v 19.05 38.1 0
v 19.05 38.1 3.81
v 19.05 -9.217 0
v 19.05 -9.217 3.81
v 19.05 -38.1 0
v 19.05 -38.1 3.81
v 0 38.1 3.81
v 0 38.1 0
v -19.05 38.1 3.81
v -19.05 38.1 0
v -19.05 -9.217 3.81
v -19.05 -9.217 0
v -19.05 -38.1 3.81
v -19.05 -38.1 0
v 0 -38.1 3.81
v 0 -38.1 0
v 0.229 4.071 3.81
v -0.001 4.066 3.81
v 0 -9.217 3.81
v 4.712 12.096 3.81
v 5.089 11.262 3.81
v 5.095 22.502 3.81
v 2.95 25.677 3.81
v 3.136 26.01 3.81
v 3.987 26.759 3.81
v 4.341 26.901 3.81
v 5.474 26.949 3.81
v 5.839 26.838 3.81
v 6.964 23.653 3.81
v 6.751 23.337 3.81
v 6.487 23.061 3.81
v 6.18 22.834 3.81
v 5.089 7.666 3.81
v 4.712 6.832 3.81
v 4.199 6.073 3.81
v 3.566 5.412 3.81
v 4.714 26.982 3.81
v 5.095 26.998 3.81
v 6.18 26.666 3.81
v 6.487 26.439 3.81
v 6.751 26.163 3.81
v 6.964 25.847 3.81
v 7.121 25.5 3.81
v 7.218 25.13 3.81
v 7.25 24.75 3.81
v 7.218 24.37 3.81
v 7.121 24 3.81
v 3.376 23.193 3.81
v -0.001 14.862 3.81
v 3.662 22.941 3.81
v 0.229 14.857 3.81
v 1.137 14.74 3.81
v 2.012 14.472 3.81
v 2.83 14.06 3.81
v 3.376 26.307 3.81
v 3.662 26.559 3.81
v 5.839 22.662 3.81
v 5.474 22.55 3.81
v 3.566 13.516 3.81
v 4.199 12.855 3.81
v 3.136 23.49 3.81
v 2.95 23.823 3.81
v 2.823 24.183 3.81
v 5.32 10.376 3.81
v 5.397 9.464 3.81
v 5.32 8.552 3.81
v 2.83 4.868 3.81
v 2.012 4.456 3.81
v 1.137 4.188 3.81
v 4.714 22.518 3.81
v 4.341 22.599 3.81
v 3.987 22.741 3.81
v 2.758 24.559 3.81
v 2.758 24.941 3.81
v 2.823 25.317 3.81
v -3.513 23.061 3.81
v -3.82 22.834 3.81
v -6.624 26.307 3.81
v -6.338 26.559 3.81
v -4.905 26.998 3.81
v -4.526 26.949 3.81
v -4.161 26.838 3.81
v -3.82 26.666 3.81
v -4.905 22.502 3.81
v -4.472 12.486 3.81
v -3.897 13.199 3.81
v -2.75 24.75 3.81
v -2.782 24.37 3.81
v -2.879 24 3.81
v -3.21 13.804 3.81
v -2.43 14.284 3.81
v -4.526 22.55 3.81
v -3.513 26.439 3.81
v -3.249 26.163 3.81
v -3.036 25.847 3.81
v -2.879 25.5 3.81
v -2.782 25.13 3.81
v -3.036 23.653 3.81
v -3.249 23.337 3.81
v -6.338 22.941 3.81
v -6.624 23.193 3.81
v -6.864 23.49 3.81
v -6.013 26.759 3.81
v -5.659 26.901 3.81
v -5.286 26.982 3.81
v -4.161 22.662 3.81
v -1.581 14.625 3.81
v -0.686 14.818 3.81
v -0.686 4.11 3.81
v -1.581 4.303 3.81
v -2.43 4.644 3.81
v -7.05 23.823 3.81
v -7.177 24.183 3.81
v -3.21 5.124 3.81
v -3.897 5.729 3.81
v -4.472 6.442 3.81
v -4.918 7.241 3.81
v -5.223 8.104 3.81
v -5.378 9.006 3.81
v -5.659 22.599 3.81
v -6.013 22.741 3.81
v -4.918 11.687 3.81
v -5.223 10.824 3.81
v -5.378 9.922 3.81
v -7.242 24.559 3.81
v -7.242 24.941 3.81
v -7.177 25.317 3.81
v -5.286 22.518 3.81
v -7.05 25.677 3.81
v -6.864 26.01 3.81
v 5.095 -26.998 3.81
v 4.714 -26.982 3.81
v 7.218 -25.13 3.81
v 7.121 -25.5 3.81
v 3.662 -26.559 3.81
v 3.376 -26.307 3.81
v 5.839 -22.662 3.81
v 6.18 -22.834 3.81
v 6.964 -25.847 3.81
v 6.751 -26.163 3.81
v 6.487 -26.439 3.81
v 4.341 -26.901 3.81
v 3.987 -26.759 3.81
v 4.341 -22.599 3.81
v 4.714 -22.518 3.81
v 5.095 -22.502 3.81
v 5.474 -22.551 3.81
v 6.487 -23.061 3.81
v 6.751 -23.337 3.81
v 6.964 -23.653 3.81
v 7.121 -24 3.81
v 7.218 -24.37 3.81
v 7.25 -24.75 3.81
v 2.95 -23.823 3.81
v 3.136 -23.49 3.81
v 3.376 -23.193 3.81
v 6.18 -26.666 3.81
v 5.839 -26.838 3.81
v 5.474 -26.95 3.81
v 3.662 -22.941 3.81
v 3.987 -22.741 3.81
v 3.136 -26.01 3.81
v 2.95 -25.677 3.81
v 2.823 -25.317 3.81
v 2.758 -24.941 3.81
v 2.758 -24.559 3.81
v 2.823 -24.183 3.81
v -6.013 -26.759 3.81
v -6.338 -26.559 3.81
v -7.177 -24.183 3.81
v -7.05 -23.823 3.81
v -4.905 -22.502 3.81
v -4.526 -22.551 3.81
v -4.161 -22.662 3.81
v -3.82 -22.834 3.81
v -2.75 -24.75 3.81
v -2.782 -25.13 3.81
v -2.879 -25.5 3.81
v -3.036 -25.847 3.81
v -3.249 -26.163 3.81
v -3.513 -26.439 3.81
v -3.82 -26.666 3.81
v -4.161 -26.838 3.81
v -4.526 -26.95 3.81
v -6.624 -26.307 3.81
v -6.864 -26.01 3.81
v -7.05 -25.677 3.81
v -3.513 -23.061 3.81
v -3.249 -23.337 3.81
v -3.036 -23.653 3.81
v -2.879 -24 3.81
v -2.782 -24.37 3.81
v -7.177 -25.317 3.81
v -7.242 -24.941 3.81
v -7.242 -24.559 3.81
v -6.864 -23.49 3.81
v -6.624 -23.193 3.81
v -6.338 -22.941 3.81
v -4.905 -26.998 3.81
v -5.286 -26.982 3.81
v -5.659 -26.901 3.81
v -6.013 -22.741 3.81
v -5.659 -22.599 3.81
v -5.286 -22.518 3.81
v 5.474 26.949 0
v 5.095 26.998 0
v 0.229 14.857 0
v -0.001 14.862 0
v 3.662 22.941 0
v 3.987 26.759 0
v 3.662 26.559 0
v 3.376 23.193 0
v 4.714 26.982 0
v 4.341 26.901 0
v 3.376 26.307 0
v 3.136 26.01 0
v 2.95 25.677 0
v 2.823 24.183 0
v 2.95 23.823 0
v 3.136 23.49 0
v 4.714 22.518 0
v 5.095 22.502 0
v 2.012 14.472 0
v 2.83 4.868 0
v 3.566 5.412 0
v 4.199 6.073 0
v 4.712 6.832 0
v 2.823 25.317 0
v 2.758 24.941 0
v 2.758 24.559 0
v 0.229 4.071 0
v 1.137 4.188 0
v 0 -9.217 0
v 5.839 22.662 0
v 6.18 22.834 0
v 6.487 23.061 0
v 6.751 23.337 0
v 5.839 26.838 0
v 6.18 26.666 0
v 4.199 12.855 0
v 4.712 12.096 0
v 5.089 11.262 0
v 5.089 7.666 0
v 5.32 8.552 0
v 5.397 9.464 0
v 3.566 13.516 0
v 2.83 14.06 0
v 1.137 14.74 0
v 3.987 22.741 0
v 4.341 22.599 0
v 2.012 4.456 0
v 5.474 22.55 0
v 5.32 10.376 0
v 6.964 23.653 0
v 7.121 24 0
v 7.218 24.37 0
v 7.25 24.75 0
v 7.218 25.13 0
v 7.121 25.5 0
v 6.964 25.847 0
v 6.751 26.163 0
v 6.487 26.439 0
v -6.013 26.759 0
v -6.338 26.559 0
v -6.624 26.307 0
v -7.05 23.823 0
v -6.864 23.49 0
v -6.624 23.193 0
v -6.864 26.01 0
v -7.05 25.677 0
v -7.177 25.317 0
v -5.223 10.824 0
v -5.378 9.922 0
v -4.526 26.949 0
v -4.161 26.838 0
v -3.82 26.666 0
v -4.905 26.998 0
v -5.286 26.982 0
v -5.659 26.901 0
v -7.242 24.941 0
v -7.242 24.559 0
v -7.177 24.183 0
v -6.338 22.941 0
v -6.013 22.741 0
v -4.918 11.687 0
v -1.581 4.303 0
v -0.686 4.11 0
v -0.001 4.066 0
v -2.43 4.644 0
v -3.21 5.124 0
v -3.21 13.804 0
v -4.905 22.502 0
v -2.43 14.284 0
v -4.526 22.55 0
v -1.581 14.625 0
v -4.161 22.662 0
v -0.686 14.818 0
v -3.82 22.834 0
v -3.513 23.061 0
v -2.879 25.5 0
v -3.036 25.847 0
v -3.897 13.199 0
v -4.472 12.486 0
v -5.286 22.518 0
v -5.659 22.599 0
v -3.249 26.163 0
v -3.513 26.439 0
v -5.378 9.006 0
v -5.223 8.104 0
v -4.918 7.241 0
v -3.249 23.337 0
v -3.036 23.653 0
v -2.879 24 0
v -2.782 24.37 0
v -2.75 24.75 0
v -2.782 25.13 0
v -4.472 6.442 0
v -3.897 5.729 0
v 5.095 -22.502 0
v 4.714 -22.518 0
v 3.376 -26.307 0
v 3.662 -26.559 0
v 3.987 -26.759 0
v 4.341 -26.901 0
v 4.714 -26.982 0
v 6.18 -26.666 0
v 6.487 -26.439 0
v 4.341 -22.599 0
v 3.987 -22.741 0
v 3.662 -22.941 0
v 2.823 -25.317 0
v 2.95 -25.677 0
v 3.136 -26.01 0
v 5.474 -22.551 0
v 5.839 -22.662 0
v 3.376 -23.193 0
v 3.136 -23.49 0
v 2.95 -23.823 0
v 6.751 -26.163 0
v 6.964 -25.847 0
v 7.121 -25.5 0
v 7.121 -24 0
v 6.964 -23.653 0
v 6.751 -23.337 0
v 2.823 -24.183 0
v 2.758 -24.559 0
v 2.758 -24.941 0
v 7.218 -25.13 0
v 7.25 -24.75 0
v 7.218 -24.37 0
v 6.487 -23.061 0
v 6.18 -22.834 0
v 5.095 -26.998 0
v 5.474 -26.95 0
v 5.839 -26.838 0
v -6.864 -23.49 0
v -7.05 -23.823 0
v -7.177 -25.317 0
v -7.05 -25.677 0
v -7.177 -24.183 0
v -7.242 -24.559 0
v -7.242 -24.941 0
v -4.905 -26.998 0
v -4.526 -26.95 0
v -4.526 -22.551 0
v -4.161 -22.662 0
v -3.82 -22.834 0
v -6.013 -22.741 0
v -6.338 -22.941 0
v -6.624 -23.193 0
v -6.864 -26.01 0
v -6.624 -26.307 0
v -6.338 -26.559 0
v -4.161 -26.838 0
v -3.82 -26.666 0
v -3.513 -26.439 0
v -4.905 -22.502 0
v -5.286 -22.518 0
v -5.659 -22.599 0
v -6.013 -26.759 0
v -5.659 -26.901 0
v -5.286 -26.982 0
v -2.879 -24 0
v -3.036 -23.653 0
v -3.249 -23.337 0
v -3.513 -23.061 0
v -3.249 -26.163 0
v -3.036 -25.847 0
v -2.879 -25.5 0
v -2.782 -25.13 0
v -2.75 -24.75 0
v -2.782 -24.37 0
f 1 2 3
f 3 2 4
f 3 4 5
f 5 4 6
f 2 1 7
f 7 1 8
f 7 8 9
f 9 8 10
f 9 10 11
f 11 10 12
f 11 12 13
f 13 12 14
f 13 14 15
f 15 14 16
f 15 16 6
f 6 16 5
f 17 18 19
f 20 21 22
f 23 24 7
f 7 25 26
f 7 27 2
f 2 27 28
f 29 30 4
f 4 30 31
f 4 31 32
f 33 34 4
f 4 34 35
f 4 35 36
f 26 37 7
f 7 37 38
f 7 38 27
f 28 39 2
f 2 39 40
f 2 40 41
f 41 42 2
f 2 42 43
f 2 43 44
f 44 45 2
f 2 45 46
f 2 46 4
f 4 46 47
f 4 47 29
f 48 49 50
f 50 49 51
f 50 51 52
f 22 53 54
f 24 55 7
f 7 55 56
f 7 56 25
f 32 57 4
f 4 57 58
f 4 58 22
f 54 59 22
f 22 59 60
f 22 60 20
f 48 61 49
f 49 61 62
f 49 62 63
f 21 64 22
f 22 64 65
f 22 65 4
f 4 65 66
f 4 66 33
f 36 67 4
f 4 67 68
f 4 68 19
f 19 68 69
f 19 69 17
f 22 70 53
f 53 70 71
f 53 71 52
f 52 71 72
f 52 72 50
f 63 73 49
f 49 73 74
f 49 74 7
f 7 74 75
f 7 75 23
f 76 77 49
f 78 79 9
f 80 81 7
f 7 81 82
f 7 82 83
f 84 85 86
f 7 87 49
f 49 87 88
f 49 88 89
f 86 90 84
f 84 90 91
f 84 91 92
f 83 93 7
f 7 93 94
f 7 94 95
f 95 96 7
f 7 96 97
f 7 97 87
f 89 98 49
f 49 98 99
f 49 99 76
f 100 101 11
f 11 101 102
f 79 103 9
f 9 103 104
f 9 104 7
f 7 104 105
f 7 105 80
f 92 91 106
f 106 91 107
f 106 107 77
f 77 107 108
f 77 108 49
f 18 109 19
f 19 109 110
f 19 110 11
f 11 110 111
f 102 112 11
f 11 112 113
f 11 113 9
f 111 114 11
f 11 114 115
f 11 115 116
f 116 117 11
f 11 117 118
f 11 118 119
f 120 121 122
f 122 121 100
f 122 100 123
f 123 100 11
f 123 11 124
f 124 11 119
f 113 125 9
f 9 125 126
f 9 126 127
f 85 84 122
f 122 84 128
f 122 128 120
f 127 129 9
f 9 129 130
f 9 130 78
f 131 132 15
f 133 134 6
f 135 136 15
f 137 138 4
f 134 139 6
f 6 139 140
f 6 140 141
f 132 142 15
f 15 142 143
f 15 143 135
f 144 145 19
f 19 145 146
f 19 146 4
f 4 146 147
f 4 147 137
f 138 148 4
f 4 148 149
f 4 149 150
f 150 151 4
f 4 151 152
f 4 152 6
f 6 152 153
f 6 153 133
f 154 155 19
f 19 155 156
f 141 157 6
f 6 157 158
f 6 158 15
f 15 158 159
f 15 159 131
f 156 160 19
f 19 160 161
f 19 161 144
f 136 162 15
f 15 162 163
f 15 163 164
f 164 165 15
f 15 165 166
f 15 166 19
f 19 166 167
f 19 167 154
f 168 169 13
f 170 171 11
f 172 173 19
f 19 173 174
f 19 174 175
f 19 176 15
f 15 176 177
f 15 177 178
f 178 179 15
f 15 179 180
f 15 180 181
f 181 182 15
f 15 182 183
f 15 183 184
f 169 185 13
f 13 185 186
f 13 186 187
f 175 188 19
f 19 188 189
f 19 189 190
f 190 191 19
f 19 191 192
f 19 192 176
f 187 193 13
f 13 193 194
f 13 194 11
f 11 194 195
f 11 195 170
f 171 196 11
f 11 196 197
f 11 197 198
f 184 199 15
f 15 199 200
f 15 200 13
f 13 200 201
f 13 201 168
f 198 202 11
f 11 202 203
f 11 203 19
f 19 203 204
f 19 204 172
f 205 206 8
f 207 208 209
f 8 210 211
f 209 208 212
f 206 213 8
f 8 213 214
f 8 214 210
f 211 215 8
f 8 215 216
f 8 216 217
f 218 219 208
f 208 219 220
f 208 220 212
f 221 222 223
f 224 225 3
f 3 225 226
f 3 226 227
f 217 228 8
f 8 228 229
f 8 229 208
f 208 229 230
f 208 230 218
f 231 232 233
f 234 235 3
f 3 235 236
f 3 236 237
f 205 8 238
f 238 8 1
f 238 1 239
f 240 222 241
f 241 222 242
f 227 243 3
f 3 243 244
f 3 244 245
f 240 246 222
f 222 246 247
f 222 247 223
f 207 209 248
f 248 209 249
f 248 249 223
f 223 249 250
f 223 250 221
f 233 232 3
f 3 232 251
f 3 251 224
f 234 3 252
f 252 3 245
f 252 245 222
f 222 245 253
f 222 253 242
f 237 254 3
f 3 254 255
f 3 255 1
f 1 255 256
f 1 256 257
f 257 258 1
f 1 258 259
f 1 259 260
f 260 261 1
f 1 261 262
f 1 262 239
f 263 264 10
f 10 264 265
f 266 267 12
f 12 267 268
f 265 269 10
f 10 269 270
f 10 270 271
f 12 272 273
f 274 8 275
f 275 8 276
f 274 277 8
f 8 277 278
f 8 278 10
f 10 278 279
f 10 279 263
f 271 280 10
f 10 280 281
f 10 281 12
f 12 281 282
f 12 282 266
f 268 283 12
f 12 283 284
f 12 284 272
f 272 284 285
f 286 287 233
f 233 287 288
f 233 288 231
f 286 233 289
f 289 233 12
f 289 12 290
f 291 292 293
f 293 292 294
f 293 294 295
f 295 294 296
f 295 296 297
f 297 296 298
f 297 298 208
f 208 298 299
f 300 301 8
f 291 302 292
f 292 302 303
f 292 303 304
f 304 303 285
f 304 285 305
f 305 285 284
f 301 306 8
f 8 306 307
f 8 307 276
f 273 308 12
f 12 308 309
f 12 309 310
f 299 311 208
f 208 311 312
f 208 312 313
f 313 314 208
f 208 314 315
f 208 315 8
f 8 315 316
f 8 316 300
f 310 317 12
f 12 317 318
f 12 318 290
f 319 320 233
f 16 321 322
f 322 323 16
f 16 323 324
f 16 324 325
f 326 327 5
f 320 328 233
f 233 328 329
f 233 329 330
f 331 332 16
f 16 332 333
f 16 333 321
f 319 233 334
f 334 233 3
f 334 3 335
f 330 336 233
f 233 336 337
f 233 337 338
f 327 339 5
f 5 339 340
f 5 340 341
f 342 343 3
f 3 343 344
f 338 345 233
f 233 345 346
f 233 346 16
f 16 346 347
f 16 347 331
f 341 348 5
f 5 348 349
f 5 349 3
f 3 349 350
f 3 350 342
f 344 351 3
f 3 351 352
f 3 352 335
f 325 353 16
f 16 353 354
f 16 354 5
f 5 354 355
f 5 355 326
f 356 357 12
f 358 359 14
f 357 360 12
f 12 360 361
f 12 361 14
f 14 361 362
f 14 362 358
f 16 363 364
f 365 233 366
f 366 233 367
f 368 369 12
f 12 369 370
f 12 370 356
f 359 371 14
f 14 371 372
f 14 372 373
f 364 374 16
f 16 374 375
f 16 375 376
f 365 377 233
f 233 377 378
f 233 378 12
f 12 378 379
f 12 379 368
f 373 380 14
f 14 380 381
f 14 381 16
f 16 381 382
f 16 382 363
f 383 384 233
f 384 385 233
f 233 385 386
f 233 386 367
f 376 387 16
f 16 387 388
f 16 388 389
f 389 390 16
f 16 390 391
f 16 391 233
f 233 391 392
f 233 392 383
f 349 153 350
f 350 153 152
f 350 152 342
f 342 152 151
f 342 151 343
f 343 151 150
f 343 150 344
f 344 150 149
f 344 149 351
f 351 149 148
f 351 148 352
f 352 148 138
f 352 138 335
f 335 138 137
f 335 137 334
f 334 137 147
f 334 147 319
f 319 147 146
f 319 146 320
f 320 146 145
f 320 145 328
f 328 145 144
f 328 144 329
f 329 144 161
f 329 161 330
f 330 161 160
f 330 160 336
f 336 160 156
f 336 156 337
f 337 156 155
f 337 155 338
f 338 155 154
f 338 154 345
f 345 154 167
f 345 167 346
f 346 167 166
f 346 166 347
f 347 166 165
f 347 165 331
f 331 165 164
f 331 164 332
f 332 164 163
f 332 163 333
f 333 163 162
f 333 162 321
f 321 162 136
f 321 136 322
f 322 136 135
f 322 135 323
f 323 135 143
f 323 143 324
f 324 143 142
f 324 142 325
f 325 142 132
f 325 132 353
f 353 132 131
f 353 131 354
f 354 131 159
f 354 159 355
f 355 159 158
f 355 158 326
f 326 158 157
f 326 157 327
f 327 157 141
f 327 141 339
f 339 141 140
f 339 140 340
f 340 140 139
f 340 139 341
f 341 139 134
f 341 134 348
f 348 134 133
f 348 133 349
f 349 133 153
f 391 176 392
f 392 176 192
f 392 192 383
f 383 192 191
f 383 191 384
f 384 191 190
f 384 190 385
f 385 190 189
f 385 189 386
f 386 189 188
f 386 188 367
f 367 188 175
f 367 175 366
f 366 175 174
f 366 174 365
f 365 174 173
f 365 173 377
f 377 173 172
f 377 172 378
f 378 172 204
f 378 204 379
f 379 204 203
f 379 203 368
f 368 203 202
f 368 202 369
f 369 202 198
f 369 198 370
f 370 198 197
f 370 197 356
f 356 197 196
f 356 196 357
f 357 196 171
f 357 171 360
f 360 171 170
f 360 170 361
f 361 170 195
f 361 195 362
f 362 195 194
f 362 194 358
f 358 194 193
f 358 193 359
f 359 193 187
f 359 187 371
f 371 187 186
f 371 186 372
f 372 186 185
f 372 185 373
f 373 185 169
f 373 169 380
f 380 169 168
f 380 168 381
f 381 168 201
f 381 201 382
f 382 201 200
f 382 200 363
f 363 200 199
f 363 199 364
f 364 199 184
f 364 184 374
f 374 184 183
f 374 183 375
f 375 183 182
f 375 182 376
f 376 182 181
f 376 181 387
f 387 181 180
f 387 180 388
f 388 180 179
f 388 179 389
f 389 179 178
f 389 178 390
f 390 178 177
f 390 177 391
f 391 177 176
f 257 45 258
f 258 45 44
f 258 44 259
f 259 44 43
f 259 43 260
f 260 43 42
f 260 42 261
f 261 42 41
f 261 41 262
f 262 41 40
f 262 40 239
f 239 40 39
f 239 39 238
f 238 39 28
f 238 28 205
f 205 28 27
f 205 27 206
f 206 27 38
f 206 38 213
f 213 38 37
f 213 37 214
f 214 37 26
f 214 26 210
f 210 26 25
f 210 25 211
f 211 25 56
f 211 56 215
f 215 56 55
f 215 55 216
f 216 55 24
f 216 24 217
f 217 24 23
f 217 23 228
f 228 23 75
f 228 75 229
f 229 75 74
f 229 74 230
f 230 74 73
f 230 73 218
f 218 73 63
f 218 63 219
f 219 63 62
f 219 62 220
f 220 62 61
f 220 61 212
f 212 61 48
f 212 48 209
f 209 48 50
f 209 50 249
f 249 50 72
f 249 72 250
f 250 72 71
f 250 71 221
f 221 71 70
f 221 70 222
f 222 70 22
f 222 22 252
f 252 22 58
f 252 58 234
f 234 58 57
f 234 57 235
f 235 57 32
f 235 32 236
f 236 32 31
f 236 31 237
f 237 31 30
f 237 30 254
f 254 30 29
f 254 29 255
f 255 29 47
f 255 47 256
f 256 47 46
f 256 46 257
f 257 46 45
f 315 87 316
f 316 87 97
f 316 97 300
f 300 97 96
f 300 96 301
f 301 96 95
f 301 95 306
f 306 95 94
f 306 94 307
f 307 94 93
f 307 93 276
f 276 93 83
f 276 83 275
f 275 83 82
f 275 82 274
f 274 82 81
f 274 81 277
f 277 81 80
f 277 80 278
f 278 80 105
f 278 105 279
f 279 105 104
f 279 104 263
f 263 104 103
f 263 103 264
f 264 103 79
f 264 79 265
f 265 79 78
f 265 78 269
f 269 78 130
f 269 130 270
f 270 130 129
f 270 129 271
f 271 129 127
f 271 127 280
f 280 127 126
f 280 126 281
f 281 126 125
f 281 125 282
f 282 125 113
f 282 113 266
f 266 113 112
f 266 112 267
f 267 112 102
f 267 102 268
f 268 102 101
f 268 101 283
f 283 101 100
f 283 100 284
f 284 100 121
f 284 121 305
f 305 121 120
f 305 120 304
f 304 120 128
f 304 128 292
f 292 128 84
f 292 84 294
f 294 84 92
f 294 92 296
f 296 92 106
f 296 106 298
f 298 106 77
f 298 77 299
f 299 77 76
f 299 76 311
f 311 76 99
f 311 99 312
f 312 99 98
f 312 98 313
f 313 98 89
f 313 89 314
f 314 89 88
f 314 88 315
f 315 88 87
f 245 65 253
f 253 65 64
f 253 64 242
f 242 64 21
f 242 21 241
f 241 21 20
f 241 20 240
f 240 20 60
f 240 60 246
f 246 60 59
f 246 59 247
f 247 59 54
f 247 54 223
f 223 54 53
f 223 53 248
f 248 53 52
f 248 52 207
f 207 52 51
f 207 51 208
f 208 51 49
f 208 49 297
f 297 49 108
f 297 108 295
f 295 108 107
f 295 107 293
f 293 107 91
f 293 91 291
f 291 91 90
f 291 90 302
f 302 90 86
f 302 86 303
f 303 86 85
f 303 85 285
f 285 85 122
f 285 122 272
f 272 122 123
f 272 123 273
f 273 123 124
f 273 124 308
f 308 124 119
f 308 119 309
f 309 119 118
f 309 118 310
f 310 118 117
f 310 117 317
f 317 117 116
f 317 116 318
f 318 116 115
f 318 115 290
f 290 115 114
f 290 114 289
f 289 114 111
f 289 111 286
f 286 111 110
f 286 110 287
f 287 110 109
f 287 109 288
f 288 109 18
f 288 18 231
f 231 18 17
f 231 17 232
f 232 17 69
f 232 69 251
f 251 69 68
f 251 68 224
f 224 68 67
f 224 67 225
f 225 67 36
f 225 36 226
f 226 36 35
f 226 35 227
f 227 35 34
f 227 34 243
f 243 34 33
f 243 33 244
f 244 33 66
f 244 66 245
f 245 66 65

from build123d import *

# Parameters (mm, degrees)
SKETCH1_W            = 38.1
SKETCH1_H            = 76.2
BOSS_EXTRUDE1_DEPTH  = 3.81
M4_CLEARANCE_HOLE1_D = 4.5
CUT_EXTRUDE1_REACH   = 44.767
SKETCH5_R            = 5.3975


with BuildPart() as part:
    # Sketch1 → Boss-Extrude1 (new body)
    with BuildSketch(Plane.XY):
        Rectangle(SKETCH1_W, SKETCH1_H)
    extrude(amount=BOSS_EXTRUDE1_DEPTH)

    # M4 Clearance Hole1 (through all)
    with Locations(Plane.XY.offset(3.81)):
        with Locations((-5, 24.75), (5, 24.75), (-5, -24.75), (5, -24.75)):
            Hole(M4_CLEARANCE_HOLE1_D / 2)

    # Sketch5 → Cut-Extrude1 (cut, up to next)
    with BuildSketch(Plane.XY.offset(3.81), mode=Mode.PRIVATE) as cut_extrude1_sk1:
        with Locations((0, 9.464)):
            Circle(SKETCH5_R)
    cut_extrude1_tool1 = extrude(cut_extrude1_sk1.sketch, amount=-CUT_EXTRUDE1_REACH, mode=Mode.PRIVATE) & part.part
    add(cut_extrude1_tool1.solids().sort_by_distance((0, 9.464, 3.81))[0], mode=Mode.SUBTRACT)


solid = part.part
